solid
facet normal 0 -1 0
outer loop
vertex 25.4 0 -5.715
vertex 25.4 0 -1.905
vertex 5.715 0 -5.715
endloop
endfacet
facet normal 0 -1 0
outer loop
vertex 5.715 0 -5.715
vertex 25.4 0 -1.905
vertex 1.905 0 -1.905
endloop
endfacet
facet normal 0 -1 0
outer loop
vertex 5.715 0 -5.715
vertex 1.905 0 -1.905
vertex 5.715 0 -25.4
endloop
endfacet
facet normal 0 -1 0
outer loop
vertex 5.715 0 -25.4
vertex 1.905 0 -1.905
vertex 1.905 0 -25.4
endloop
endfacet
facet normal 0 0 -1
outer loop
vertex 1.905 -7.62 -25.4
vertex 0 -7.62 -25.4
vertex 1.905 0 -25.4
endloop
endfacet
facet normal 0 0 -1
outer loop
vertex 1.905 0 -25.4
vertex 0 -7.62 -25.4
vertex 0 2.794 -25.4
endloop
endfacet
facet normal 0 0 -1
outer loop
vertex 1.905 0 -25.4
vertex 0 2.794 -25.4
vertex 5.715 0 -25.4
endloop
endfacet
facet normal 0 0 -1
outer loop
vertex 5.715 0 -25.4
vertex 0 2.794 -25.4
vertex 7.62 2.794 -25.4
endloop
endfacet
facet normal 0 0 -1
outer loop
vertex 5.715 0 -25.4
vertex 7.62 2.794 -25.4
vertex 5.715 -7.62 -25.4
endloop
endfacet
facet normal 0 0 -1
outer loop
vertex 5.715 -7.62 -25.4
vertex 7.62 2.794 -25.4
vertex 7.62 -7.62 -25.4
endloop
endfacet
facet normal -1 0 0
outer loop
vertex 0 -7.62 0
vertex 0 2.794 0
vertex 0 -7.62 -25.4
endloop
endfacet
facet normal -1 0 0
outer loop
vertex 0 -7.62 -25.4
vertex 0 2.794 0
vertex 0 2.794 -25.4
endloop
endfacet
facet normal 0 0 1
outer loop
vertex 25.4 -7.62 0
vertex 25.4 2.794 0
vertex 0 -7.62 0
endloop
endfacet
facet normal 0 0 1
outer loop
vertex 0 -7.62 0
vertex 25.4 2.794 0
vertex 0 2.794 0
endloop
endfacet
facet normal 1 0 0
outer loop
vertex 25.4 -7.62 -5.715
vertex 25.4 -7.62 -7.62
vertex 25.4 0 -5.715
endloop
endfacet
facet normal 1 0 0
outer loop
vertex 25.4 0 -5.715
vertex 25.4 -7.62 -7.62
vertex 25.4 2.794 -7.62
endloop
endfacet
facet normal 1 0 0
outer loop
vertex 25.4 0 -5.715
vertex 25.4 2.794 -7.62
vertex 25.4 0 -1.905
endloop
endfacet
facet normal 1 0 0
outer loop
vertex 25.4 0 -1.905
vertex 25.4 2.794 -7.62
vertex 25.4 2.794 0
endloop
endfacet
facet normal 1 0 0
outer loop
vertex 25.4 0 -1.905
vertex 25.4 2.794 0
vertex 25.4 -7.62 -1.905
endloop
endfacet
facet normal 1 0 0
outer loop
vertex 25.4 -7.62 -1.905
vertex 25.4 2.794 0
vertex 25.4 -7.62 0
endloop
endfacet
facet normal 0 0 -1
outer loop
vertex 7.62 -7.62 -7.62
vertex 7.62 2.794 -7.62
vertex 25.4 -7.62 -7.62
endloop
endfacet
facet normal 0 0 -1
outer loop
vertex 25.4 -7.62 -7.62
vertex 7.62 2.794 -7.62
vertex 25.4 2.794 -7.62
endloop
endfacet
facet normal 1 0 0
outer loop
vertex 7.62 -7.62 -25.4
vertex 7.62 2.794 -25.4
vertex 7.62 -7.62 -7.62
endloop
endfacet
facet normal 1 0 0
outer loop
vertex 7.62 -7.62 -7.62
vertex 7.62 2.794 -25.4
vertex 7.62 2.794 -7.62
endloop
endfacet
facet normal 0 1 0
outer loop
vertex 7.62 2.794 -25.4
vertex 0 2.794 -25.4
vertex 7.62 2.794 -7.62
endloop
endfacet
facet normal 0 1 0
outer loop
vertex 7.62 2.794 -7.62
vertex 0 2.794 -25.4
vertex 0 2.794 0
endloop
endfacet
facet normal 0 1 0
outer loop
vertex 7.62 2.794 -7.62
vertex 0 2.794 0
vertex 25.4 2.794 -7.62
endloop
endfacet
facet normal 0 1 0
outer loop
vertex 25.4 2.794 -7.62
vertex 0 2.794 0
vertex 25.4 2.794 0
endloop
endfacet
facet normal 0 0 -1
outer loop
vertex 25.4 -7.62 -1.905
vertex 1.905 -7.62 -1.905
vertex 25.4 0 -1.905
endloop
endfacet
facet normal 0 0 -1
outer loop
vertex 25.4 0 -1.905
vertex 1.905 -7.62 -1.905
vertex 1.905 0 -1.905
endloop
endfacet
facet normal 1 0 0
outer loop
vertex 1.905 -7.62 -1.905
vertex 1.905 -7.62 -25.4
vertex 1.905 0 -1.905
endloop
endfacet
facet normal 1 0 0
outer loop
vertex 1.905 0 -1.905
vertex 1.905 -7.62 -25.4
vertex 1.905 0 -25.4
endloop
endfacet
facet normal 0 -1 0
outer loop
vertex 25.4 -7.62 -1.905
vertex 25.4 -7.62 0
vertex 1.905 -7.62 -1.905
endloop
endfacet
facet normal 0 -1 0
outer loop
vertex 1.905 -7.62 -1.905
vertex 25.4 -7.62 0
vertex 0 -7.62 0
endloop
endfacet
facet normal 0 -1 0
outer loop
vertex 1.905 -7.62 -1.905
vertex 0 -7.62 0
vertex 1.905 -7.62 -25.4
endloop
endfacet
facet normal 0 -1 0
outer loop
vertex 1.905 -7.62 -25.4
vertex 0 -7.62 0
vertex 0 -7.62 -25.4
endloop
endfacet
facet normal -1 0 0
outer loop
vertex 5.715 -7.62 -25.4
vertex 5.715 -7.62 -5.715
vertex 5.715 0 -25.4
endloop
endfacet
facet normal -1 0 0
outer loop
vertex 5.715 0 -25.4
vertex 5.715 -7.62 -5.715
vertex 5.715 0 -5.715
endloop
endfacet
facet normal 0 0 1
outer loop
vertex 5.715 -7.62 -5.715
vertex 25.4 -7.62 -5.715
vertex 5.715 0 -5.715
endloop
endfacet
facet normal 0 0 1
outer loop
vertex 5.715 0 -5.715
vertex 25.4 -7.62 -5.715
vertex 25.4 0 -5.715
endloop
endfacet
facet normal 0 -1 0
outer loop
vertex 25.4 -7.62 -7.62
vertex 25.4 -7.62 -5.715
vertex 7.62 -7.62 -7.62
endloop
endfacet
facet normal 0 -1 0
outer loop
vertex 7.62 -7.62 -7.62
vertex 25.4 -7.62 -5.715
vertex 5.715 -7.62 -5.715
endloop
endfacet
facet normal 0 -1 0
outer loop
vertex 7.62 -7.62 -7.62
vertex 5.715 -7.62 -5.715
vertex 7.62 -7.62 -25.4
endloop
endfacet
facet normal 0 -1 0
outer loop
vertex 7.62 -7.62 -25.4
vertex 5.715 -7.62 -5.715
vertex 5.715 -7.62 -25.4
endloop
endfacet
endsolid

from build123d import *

# Parameters (mm, degrees)
BOSS_EXTRUDE1_DEPTH = 2.794
BOSS_EXTRUDE2_DEPTH = 7.62


with BuildPart() as part:
    # Sketch1 → Boss-Extrude1 (new body)
    with BuildSketch(Plane(origin=(0, 0, 0), x_dir=(1, 0, 0), z_dir=(0, 1, 0))):
        Polygon((0, 25.4), (0, 0), (25.4, 0), (25.4, 7.62), (7.62, 7.62), (7.62, 25.4), align=None)
    extrude(amount=BOSS_EXTRUDE1_DEPTH)

    # Sketch1<6> → Boss-Extrude2 (add)
    with BuildSketch(Plane(origin=(0, 0, 0), x_dir=(1, 0, 0), z_dir=(0, 1, 0))):
        Polygon((0, 25.4), (0, 0), (25.4, 0), (25.4, 1.905), (1.905, 1.905), (1.905, 25.4), align=None)
        Polygon((7.62, 25.4), (5.715, 25.4), (5.715, 5.715), (25.4, 5.715), (25.4, 7.62), (7.62, 7.62), align=None)
    extrude(amount=-BOSS_EXTRUDE2_DEPTH)


solid = part.part
